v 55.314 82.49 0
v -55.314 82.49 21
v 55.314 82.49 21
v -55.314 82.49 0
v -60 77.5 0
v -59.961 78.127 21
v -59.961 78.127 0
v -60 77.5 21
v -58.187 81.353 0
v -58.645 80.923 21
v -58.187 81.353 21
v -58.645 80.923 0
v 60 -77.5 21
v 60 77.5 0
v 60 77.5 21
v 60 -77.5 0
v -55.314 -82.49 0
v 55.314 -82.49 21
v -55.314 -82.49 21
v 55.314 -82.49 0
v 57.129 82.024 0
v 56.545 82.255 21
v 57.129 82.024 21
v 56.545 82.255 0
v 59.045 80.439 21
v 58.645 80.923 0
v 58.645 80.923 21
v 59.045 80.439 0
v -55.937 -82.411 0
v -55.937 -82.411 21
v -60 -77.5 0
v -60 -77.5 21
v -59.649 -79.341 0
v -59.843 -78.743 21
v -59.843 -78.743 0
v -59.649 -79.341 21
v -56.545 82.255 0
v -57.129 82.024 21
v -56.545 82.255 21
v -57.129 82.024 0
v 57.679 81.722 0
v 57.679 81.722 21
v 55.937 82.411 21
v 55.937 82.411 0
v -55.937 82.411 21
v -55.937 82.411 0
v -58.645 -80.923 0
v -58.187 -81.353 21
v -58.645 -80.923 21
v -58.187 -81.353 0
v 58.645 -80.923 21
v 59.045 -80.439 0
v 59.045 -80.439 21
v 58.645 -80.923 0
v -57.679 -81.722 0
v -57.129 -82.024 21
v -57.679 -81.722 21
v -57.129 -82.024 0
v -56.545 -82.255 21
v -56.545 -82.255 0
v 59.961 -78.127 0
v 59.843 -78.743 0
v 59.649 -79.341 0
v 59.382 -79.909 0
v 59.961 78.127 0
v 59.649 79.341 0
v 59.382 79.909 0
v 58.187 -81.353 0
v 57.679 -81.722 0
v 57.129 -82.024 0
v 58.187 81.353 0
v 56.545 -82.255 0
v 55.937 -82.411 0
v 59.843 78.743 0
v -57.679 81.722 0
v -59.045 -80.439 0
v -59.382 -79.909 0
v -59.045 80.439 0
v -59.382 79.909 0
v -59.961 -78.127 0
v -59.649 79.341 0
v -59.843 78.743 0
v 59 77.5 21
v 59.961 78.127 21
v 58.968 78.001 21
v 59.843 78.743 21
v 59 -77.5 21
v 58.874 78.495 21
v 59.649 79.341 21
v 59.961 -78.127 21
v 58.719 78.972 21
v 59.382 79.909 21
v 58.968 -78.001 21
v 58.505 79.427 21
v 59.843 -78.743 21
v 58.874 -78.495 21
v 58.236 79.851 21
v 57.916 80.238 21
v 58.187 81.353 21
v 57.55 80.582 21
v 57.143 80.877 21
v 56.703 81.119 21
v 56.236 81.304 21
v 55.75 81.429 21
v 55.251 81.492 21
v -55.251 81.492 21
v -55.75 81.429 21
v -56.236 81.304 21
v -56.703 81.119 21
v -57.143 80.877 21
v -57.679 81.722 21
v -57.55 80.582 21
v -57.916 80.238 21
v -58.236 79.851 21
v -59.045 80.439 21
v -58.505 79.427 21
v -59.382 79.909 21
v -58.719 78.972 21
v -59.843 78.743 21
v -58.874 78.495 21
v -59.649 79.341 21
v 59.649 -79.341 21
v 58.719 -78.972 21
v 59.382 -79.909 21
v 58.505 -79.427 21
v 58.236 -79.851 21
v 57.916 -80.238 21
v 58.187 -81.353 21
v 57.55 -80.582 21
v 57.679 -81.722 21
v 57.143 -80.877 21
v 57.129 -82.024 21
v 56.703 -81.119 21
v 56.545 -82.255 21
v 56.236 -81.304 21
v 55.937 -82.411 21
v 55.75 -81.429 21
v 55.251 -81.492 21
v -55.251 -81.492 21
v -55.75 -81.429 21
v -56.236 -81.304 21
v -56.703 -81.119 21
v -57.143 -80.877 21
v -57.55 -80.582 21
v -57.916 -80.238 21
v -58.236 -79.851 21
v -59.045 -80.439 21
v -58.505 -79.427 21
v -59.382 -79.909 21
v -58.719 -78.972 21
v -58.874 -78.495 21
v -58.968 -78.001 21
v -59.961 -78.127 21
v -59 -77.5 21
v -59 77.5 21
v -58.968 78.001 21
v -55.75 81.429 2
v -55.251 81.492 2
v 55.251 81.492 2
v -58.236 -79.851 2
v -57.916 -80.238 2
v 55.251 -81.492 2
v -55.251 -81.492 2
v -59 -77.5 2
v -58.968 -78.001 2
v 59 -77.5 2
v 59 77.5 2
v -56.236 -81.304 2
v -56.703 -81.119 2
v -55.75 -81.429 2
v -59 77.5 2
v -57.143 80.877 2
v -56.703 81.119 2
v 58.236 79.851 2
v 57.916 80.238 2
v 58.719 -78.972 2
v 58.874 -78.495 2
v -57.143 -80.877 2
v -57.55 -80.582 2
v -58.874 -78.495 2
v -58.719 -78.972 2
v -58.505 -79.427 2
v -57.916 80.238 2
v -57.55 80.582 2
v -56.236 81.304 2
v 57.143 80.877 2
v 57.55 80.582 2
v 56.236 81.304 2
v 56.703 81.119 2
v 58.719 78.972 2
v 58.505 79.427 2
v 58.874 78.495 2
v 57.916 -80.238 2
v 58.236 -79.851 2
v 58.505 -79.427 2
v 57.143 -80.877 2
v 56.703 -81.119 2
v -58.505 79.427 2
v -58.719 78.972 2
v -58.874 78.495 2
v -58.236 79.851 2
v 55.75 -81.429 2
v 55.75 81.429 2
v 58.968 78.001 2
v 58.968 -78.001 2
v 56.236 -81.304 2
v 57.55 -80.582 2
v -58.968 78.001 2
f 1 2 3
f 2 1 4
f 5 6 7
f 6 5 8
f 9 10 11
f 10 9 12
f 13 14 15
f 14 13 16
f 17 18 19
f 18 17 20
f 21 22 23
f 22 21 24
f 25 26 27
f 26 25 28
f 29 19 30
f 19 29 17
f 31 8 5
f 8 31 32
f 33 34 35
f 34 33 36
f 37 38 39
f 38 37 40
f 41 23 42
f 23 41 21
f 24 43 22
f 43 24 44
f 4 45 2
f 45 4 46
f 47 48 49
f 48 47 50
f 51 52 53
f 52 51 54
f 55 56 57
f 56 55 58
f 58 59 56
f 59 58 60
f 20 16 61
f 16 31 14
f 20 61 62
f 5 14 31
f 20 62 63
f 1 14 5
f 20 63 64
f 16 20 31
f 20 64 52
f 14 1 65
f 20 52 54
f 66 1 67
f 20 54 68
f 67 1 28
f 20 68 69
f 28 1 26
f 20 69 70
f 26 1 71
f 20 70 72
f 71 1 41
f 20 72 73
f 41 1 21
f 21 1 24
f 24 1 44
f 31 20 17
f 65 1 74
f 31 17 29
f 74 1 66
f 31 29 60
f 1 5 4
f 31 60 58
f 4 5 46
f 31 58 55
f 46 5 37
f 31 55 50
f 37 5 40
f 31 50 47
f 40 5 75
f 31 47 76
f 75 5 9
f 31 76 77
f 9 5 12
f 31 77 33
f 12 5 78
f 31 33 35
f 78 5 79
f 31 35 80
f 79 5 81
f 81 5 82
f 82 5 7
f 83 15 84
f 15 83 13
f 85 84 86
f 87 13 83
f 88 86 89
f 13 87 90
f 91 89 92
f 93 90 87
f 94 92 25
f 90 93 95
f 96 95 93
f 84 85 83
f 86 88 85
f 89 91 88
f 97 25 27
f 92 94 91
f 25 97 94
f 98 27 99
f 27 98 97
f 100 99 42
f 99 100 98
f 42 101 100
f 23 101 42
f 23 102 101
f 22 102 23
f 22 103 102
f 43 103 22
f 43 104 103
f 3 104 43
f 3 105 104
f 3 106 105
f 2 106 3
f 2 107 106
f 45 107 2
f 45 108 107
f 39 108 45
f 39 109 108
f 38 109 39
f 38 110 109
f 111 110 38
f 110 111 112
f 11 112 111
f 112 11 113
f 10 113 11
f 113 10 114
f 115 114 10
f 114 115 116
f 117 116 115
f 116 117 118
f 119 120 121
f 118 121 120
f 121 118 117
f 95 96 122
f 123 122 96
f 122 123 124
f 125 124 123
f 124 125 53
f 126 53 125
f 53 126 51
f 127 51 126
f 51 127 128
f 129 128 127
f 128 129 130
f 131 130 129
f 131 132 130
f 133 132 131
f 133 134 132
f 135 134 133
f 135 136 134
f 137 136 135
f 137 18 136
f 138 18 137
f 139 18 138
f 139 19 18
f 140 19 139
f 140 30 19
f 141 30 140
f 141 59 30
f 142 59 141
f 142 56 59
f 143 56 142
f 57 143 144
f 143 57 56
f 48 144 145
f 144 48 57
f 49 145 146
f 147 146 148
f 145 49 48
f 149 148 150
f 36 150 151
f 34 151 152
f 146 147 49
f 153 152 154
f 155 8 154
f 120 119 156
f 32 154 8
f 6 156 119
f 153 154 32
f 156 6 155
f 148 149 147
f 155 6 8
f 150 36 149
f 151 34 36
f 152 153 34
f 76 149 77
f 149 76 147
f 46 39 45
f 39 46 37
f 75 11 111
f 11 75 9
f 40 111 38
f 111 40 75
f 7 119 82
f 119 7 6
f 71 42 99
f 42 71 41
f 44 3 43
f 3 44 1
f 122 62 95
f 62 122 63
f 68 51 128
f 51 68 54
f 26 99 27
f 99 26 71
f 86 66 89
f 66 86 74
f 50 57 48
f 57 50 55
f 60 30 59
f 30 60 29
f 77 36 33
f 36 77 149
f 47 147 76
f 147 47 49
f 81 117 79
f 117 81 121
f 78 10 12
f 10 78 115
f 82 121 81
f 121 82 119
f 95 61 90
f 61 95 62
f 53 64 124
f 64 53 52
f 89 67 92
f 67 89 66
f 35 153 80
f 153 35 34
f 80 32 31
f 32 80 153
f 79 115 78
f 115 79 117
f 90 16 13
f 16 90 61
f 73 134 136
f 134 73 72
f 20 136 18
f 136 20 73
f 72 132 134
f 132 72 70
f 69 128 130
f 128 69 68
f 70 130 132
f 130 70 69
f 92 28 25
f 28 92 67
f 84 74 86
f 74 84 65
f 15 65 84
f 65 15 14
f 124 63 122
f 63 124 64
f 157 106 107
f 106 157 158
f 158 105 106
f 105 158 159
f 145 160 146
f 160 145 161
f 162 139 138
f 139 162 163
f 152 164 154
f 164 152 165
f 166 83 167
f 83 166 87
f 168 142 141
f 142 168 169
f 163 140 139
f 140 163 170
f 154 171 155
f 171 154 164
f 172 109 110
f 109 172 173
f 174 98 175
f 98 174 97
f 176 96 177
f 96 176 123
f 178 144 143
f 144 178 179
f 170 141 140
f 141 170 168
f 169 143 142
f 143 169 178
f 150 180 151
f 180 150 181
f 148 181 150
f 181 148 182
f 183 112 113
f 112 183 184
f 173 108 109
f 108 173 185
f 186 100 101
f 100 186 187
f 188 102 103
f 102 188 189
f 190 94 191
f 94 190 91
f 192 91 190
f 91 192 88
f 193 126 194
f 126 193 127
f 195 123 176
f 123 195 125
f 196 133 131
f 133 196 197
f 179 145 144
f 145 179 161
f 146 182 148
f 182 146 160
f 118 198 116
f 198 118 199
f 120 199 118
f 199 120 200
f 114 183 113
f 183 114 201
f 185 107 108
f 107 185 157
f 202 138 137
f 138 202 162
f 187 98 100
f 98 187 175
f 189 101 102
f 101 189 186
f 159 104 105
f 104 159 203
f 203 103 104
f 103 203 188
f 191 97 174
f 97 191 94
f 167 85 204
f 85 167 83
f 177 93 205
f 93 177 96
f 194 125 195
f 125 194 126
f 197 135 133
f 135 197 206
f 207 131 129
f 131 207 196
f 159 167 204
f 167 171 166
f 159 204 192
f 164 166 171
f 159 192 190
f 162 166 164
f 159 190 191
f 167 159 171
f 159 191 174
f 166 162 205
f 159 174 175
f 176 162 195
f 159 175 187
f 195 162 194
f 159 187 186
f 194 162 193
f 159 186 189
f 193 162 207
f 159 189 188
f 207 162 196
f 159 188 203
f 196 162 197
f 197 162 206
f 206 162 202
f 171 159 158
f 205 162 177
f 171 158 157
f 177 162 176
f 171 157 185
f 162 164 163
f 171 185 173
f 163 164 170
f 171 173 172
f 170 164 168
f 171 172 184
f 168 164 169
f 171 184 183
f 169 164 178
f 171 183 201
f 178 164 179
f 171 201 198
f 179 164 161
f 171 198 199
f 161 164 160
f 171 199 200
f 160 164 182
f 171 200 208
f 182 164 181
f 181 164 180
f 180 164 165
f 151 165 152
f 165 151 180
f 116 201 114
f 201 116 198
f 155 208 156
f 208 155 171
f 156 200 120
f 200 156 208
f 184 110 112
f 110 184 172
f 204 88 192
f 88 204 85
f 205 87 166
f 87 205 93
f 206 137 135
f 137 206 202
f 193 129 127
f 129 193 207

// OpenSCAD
$fn = 50;


difference() {
	union() {
		hull() {
			translate(v = [-55.0000000000, 77.5000000000, 0]) {
				cylinder(h = 21, r = 5);
			}
			translate(v = [55.0000000000, 77.5000000000, 0]) {
				cylinder(h = 21, r = 5);
			}
			translate(v = [-55.0000000000, -77.5000000000, 0]) {
				cylinder(h = 21, r = 5);
			}
			translate(v = [55.0000000000, -77.5000000000, 0]) {
				cylinder(h = 21, r = 5);
			}
		}
	}
	union() {
		translate(v = [0, 0, 2]) {
			hull() {
				translate(v = [-55.0000000000, 77.5000000000, 0]) {
					cylinder(h = 19, r = 4);
				}
				translate(v = [55.0000000000, 77.5000000000, 0]) {
					cylinder(h = 19, r = 4);
				}
				translate(v = [-55.0000000000, -77.5000000000, 0]) {
					cylinder(h = 19, r = 4);
				}
				translate(v = [55.0000000000, -77.5000000000, 0]) {
					cylinder(h = 19, r = 4);
				}
			}
		}
	}
}
